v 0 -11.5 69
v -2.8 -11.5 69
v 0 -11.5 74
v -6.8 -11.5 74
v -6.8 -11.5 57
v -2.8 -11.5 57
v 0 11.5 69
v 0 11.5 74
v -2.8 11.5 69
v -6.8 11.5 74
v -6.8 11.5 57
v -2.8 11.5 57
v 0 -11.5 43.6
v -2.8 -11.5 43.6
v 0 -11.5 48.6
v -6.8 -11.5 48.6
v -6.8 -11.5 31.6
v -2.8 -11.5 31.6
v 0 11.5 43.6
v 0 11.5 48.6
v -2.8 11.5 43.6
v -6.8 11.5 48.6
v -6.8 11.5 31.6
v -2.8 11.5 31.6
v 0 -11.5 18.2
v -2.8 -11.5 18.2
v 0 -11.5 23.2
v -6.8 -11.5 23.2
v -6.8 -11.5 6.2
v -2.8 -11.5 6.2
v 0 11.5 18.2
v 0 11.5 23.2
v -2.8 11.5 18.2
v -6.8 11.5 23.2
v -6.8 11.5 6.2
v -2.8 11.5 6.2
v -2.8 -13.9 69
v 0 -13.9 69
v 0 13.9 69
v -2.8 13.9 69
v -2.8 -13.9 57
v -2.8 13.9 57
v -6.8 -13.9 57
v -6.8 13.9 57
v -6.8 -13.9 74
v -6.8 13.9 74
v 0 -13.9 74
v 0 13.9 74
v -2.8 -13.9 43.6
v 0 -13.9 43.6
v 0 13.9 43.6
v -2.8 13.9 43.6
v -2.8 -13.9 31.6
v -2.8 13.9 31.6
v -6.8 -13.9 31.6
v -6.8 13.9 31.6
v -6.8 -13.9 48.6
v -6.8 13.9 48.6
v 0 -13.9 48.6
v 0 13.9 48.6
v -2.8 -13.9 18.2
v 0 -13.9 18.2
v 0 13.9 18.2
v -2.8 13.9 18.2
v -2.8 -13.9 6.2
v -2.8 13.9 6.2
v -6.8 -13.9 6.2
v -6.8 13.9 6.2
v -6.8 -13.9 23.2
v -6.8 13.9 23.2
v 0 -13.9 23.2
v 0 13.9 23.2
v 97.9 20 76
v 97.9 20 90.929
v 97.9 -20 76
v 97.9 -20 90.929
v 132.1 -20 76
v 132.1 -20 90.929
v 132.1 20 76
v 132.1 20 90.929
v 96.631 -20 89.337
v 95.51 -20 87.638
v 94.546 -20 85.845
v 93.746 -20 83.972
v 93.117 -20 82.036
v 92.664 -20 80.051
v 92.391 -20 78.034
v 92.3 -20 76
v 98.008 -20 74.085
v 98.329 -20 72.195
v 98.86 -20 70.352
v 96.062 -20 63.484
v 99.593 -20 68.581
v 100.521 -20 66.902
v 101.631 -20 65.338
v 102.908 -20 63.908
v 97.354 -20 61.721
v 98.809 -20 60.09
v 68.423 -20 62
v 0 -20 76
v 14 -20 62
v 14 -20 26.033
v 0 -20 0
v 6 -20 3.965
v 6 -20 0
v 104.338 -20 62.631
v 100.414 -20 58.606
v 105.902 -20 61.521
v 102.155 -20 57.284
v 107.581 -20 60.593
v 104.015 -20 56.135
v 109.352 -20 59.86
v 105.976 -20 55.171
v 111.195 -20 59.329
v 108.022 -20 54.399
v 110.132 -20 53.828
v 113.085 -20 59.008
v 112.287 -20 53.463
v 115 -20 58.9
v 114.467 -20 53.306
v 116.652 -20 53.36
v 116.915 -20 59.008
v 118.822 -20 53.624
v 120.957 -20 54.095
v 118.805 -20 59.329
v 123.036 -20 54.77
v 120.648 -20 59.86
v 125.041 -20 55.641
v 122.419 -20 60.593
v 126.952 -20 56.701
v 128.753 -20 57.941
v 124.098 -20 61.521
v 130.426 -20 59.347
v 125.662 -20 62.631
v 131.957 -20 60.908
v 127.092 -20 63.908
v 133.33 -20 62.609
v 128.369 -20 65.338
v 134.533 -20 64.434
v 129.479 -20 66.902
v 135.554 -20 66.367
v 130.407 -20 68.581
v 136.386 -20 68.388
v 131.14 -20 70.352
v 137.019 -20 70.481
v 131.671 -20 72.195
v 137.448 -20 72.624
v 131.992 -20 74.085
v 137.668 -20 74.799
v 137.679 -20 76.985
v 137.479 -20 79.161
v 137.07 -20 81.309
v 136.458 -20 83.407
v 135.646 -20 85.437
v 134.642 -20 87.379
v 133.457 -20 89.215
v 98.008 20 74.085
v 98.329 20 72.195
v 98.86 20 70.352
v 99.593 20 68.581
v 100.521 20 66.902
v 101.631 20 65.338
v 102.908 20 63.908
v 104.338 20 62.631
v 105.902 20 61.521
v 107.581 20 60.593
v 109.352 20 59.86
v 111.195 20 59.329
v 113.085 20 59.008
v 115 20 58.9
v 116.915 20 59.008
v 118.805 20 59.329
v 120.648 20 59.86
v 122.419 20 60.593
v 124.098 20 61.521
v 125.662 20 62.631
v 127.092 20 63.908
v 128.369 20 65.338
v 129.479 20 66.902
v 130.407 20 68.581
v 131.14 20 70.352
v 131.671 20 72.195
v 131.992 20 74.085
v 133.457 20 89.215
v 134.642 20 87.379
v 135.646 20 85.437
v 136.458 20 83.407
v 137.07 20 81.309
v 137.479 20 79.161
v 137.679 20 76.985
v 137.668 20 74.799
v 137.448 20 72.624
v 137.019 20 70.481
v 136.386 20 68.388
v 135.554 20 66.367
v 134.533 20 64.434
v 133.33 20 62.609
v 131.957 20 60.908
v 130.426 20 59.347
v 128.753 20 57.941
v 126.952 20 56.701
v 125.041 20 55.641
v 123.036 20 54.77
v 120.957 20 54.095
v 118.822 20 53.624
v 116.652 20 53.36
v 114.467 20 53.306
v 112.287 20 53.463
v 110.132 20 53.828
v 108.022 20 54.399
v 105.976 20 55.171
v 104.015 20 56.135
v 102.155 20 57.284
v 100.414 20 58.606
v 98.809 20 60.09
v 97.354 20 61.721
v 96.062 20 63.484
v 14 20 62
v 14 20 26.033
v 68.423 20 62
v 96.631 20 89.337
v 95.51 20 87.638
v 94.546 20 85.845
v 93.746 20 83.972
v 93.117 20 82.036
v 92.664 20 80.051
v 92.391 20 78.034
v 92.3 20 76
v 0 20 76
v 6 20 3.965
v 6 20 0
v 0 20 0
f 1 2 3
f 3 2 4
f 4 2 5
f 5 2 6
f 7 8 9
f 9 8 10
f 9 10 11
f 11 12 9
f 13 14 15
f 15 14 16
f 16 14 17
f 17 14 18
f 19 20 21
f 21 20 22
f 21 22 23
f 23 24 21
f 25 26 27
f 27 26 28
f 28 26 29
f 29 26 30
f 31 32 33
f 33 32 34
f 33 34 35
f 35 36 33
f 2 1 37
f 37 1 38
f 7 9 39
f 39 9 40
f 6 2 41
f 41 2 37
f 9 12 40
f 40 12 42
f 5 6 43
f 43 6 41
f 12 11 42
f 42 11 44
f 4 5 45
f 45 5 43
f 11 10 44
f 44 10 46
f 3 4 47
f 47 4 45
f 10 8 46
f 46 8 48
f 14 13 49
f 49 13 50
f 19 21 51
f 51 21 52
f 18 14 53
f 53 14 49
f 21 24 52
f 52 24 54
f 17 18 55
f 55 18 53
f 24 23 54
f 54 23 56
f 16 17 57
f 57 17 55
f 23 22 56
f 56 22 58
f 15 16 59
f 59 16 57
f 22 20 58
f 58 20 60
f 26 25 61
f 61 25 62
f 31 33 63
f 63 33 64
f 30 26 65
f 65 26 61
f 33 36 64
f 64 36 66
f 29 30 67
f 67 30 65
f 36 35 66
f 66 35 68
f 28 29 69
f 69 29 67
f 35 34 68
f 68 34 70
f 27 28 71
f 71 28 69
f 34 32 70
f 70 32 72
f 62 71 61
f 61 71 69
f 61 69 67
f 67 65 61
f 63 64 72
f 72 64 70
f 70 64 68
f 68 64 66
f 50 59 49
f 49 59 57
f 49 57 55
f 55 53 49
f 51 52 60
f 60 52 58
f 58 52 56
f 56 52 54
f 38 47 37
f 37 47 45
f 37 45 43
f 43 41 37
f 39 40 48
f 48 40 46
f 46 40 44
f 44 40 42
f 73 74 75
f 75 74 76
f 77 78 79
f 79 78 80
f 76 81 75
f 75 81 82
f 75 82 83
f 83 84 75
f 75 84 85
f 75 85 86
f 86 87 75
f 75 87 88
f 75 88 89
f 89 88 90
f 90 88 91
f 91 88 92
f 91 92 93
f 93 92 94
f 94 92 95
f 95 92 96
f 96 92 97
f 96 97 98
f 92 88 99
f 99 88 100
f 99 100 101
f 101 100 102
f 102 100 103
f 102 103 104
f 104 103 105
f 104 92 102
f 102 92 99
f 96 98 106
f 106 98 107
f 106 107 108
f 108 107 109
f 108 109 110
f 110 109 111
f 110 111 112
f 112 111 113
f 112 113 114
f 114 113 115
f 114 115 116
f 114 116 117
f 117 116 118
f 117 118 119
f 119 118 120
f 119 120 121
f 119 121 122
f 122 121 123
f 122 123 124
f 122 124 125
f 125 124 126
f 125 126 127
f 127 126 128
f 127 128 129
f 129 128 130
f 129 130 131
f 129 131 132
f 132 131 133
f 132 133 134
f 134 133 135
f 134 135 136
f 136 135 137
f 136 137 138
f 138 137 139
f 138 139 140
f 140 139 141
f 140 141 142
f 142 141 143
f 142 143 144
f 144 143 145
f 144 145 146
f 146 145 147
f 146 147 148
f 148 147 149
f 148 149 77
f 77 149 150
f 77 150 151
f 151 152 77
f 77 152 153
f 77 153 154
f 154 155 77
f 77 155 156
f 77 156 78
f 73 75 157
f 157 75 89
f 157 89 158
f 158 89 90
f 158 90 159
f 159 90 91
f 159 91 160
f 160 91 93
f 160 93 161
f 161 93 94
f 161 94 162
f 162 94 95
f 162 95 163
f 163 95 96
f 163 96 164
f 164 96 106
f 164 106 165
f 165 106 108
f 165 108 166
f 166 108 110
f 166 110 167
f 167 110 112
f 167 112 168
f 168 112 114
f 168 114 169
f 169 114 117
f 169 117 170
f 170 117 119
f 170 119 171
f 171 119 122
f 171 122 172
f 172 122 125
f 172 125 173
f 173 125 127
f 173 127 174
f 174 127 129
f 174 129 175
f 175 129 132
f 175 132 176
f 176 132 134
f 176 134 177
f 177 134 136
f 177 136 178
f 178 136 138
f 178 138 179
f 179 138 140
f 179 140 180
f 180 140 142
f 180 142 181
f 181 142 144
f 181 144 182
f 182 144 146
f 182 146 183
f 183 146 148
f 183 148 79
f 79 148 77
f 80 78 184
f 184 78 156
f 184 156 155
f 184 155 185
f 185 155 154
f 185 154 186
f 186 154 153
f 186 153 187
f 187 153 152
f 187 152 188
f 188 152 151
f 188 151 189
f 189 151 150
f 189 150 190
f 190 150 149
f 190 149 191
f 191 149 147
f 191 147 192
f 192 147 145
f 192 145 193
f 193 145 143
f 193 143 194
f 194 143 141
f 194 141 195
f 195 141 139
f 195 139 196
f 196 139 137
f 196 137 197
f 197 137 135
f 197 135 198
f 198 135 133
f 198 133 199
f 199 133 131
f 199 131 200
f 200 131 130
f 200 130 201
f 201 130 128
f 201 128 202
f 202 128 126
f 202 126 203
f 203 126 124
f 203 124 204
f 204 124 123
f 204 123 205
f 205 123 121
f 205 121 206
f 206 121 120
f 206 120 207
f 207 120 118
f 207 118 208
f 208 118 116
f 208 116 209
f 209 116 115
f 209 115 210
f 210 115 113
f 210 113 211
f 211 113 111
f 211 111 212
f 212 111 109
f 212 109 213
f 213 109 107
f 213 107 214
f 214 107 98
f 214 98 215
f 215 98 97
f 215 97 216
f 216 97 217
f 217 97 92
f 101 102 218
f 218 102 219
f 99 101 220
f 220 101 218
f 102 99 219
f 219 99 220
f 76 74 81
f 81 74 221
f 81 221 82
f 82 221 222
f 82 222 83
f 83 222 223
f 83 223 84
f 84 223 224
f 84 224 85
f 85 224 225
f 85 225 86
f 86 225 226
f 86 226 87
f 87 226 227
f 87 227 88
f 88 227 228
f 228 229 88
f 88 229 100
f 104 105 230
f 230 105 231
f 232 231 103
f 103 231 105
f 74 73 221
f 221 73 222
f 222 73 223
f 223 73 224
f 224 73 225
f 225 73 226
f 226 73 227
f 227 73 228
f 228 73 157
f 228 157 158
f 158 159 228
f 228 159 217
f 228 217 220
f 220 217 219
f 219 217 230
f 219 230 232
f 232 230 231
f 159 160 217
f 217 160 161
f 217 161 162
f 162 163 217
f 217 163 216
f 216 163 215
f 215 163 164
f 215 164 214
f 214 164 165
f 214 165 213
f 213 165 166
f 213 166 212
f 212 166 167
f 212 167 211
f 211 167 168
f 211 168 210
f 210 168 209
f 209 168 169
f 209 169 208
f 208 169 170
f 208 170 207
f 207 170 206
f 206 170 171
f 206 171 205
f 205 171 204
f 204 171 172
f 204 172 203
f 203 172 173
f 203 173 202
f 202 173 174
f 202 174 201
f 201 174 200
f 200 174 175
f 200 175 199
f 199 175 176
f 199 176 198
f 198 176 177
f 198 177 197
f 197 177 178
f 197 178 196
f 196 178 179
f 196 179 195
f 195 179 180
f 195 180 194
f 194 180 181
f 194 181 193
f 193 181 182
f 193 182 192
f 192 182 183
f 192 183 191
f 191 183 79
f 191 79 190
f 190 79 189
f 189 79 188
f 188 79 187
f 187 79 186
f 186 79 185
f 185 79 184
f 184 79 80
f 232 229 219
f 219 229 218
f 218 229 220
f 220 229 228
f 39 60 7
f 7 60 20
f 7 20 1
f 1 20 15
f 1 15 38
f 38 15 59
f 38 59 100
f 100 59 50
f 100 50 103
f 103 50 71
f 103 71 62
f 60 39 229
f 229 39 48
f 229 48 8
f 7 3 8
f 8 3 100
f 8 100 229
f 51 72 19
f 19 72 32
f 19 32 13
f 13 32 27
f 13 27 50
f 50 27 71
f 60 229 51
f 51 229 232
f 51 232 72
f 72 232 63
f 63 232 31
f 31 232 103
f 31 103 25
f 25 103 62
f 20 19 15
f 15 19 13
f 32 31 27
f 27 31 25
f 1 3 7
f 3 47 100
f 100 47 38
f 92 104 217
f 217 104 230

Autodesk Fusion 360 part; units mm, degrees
sketch "Arm triangle" plane through (0, 0, 0) normal (0, 1, 0) x (1, 0, 0)
  line L0 (0, 0) -> (0, -76)
  line L1 (0, -76) -> (115, -76)
  line L2 (115, -76) -> (0, 0)
extrude "Arm triangle (1)" add sketch "Arm triangle" along normal mid plane 40
sketch "Hook plate" plane through (0, 0, 0) normal (0, 1, 0) x (1, 0, 0)
  line L0 (0, 0) -> (6, 0)
  line L1 (6, 0) -> (6, -76)
  line L2 (6, -76) -> (0, -76)
  line L3 (0, -76) -> (0, 0)
extrude "Hook plate (1)" add sketch "Hook plate" along normal mid plane 40
sketch "Saddle boss" plane through (0, 0, 0) normal (0, 1, 0) x (1, 0, 0)
  circle A0 centre (115, -76) radius 22.7
extrude "Saddle boss (1)" add sketch "Saddle boss" along normal mid plane 40
sketch "Lightening cutout" plane through (0, 0, 0) normal (0, 1, 0) x (1, 0, 0)
  line L0 (14, -26.0332) -> (14, -62)
  line L1 (14, -62) -> (68.4235, -62)
  line L2 (68.4235, -62) -> (14, -26.0332)
extrude "Lightening cutout (1)" cut sketch "Lightening cutout" along normal mid plane 50
sketch "Rod pocket" plane through (0, 0, 0) normal (0, 1, 0) x (1, 0, 0)
  circle A0 centre (115, -76) radius 17.1
extrude "Rod pocket (1)" cut sketch "Rod pocket" along normal mid plane 50
sketch "Rod drop-in opening" plane through (0, 0, 0) normal (0, 1, 0) x (1, 0, 0)
  line L0 (97.9, -76) -> (132.1, -76)
  line L1 (132.1, -76) -> (132.1, -103.7)
  line L2 (132.1, -103.7) -> (97.9, -103.7)
  line L3 (97.9, -103.7) -> (97.9, -76)
extrude "Rod drop-in opening (1)" cut sketch "Rod drop-in opening" along normal mid plane 50
sketch "Hook profiles" plane through (0, 0, 0) normal (0, 1, 0) x (1, 0, 0)
  line L0 (0, -74) -> (-6.8, -74)
  line L1 (-6.8, -74) -> (-6.8, -57)
  line L2 (-6.8, -57) -> (-2.8, -57)
  line L3 (-2.8, -57) -> (-2.8, -69)
  line L4 (-2.8, -69) -> (0, -69)
  line L5 (0, -69) -> (0, -74)
  line L6 (0, -48.6) -> (-6.8, -48.6)
  line L7 (-6.8, -48.6) -> (-6.8, -31.6)
  line L8 (-6.8, -31.6) -> (-2.8, -31.6)
  line L9 (-2.8, -31.6) -> (-2.8, -43.6)
  line L10 (-2.8, -43.6) -> (0, -43.6)
  line L11 (0, -43.6) -> (0, -48.6)
  line L12 (0, -23.2) -> (-6.8, -23.2)
  line L13 (-6.8, -23.2) -> (-6.8, -6.2)
  line L14 (-6.8, -6.2) -> (-2.8, -6.2)
  line L15 (-2.8, -6.2) -> (-2.8, -18.2)
  line L16 (-2.8, -18.2) -> (0, -18.2)
  line L17 (0, -18.2) -> (0, -23.2)
extrude "Hook slab" add sketch "Hook profiles" along normal mid plane 27.8
extrude "Hook column split" cut sketch "Hook profiles" along normal mid plane 23
